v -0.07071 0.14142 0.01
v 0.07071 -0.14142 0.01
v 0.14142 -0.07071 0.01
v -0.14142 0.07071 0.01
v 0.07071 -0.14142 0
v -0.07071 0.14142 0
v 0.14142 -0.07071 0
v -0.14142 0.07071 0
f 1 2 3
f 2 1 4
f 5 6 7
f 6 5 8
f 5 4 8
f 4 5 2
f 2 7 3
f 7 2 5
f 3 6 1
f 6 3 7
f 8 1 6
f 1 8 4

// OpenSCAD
z_size = 0.01;
eps = 0.01;
cell_size = 0.005;

chan_length = 0.3;
chan_width = 0.1;

rotate(-45)
translate([-chan_length/2, -chan_width/2, 0]) 
    cube([chan_length, chan_width, z_size]);

// color("blue") translate([0, 0, 0.005]) sphere(r=0.01, $fn=100);
